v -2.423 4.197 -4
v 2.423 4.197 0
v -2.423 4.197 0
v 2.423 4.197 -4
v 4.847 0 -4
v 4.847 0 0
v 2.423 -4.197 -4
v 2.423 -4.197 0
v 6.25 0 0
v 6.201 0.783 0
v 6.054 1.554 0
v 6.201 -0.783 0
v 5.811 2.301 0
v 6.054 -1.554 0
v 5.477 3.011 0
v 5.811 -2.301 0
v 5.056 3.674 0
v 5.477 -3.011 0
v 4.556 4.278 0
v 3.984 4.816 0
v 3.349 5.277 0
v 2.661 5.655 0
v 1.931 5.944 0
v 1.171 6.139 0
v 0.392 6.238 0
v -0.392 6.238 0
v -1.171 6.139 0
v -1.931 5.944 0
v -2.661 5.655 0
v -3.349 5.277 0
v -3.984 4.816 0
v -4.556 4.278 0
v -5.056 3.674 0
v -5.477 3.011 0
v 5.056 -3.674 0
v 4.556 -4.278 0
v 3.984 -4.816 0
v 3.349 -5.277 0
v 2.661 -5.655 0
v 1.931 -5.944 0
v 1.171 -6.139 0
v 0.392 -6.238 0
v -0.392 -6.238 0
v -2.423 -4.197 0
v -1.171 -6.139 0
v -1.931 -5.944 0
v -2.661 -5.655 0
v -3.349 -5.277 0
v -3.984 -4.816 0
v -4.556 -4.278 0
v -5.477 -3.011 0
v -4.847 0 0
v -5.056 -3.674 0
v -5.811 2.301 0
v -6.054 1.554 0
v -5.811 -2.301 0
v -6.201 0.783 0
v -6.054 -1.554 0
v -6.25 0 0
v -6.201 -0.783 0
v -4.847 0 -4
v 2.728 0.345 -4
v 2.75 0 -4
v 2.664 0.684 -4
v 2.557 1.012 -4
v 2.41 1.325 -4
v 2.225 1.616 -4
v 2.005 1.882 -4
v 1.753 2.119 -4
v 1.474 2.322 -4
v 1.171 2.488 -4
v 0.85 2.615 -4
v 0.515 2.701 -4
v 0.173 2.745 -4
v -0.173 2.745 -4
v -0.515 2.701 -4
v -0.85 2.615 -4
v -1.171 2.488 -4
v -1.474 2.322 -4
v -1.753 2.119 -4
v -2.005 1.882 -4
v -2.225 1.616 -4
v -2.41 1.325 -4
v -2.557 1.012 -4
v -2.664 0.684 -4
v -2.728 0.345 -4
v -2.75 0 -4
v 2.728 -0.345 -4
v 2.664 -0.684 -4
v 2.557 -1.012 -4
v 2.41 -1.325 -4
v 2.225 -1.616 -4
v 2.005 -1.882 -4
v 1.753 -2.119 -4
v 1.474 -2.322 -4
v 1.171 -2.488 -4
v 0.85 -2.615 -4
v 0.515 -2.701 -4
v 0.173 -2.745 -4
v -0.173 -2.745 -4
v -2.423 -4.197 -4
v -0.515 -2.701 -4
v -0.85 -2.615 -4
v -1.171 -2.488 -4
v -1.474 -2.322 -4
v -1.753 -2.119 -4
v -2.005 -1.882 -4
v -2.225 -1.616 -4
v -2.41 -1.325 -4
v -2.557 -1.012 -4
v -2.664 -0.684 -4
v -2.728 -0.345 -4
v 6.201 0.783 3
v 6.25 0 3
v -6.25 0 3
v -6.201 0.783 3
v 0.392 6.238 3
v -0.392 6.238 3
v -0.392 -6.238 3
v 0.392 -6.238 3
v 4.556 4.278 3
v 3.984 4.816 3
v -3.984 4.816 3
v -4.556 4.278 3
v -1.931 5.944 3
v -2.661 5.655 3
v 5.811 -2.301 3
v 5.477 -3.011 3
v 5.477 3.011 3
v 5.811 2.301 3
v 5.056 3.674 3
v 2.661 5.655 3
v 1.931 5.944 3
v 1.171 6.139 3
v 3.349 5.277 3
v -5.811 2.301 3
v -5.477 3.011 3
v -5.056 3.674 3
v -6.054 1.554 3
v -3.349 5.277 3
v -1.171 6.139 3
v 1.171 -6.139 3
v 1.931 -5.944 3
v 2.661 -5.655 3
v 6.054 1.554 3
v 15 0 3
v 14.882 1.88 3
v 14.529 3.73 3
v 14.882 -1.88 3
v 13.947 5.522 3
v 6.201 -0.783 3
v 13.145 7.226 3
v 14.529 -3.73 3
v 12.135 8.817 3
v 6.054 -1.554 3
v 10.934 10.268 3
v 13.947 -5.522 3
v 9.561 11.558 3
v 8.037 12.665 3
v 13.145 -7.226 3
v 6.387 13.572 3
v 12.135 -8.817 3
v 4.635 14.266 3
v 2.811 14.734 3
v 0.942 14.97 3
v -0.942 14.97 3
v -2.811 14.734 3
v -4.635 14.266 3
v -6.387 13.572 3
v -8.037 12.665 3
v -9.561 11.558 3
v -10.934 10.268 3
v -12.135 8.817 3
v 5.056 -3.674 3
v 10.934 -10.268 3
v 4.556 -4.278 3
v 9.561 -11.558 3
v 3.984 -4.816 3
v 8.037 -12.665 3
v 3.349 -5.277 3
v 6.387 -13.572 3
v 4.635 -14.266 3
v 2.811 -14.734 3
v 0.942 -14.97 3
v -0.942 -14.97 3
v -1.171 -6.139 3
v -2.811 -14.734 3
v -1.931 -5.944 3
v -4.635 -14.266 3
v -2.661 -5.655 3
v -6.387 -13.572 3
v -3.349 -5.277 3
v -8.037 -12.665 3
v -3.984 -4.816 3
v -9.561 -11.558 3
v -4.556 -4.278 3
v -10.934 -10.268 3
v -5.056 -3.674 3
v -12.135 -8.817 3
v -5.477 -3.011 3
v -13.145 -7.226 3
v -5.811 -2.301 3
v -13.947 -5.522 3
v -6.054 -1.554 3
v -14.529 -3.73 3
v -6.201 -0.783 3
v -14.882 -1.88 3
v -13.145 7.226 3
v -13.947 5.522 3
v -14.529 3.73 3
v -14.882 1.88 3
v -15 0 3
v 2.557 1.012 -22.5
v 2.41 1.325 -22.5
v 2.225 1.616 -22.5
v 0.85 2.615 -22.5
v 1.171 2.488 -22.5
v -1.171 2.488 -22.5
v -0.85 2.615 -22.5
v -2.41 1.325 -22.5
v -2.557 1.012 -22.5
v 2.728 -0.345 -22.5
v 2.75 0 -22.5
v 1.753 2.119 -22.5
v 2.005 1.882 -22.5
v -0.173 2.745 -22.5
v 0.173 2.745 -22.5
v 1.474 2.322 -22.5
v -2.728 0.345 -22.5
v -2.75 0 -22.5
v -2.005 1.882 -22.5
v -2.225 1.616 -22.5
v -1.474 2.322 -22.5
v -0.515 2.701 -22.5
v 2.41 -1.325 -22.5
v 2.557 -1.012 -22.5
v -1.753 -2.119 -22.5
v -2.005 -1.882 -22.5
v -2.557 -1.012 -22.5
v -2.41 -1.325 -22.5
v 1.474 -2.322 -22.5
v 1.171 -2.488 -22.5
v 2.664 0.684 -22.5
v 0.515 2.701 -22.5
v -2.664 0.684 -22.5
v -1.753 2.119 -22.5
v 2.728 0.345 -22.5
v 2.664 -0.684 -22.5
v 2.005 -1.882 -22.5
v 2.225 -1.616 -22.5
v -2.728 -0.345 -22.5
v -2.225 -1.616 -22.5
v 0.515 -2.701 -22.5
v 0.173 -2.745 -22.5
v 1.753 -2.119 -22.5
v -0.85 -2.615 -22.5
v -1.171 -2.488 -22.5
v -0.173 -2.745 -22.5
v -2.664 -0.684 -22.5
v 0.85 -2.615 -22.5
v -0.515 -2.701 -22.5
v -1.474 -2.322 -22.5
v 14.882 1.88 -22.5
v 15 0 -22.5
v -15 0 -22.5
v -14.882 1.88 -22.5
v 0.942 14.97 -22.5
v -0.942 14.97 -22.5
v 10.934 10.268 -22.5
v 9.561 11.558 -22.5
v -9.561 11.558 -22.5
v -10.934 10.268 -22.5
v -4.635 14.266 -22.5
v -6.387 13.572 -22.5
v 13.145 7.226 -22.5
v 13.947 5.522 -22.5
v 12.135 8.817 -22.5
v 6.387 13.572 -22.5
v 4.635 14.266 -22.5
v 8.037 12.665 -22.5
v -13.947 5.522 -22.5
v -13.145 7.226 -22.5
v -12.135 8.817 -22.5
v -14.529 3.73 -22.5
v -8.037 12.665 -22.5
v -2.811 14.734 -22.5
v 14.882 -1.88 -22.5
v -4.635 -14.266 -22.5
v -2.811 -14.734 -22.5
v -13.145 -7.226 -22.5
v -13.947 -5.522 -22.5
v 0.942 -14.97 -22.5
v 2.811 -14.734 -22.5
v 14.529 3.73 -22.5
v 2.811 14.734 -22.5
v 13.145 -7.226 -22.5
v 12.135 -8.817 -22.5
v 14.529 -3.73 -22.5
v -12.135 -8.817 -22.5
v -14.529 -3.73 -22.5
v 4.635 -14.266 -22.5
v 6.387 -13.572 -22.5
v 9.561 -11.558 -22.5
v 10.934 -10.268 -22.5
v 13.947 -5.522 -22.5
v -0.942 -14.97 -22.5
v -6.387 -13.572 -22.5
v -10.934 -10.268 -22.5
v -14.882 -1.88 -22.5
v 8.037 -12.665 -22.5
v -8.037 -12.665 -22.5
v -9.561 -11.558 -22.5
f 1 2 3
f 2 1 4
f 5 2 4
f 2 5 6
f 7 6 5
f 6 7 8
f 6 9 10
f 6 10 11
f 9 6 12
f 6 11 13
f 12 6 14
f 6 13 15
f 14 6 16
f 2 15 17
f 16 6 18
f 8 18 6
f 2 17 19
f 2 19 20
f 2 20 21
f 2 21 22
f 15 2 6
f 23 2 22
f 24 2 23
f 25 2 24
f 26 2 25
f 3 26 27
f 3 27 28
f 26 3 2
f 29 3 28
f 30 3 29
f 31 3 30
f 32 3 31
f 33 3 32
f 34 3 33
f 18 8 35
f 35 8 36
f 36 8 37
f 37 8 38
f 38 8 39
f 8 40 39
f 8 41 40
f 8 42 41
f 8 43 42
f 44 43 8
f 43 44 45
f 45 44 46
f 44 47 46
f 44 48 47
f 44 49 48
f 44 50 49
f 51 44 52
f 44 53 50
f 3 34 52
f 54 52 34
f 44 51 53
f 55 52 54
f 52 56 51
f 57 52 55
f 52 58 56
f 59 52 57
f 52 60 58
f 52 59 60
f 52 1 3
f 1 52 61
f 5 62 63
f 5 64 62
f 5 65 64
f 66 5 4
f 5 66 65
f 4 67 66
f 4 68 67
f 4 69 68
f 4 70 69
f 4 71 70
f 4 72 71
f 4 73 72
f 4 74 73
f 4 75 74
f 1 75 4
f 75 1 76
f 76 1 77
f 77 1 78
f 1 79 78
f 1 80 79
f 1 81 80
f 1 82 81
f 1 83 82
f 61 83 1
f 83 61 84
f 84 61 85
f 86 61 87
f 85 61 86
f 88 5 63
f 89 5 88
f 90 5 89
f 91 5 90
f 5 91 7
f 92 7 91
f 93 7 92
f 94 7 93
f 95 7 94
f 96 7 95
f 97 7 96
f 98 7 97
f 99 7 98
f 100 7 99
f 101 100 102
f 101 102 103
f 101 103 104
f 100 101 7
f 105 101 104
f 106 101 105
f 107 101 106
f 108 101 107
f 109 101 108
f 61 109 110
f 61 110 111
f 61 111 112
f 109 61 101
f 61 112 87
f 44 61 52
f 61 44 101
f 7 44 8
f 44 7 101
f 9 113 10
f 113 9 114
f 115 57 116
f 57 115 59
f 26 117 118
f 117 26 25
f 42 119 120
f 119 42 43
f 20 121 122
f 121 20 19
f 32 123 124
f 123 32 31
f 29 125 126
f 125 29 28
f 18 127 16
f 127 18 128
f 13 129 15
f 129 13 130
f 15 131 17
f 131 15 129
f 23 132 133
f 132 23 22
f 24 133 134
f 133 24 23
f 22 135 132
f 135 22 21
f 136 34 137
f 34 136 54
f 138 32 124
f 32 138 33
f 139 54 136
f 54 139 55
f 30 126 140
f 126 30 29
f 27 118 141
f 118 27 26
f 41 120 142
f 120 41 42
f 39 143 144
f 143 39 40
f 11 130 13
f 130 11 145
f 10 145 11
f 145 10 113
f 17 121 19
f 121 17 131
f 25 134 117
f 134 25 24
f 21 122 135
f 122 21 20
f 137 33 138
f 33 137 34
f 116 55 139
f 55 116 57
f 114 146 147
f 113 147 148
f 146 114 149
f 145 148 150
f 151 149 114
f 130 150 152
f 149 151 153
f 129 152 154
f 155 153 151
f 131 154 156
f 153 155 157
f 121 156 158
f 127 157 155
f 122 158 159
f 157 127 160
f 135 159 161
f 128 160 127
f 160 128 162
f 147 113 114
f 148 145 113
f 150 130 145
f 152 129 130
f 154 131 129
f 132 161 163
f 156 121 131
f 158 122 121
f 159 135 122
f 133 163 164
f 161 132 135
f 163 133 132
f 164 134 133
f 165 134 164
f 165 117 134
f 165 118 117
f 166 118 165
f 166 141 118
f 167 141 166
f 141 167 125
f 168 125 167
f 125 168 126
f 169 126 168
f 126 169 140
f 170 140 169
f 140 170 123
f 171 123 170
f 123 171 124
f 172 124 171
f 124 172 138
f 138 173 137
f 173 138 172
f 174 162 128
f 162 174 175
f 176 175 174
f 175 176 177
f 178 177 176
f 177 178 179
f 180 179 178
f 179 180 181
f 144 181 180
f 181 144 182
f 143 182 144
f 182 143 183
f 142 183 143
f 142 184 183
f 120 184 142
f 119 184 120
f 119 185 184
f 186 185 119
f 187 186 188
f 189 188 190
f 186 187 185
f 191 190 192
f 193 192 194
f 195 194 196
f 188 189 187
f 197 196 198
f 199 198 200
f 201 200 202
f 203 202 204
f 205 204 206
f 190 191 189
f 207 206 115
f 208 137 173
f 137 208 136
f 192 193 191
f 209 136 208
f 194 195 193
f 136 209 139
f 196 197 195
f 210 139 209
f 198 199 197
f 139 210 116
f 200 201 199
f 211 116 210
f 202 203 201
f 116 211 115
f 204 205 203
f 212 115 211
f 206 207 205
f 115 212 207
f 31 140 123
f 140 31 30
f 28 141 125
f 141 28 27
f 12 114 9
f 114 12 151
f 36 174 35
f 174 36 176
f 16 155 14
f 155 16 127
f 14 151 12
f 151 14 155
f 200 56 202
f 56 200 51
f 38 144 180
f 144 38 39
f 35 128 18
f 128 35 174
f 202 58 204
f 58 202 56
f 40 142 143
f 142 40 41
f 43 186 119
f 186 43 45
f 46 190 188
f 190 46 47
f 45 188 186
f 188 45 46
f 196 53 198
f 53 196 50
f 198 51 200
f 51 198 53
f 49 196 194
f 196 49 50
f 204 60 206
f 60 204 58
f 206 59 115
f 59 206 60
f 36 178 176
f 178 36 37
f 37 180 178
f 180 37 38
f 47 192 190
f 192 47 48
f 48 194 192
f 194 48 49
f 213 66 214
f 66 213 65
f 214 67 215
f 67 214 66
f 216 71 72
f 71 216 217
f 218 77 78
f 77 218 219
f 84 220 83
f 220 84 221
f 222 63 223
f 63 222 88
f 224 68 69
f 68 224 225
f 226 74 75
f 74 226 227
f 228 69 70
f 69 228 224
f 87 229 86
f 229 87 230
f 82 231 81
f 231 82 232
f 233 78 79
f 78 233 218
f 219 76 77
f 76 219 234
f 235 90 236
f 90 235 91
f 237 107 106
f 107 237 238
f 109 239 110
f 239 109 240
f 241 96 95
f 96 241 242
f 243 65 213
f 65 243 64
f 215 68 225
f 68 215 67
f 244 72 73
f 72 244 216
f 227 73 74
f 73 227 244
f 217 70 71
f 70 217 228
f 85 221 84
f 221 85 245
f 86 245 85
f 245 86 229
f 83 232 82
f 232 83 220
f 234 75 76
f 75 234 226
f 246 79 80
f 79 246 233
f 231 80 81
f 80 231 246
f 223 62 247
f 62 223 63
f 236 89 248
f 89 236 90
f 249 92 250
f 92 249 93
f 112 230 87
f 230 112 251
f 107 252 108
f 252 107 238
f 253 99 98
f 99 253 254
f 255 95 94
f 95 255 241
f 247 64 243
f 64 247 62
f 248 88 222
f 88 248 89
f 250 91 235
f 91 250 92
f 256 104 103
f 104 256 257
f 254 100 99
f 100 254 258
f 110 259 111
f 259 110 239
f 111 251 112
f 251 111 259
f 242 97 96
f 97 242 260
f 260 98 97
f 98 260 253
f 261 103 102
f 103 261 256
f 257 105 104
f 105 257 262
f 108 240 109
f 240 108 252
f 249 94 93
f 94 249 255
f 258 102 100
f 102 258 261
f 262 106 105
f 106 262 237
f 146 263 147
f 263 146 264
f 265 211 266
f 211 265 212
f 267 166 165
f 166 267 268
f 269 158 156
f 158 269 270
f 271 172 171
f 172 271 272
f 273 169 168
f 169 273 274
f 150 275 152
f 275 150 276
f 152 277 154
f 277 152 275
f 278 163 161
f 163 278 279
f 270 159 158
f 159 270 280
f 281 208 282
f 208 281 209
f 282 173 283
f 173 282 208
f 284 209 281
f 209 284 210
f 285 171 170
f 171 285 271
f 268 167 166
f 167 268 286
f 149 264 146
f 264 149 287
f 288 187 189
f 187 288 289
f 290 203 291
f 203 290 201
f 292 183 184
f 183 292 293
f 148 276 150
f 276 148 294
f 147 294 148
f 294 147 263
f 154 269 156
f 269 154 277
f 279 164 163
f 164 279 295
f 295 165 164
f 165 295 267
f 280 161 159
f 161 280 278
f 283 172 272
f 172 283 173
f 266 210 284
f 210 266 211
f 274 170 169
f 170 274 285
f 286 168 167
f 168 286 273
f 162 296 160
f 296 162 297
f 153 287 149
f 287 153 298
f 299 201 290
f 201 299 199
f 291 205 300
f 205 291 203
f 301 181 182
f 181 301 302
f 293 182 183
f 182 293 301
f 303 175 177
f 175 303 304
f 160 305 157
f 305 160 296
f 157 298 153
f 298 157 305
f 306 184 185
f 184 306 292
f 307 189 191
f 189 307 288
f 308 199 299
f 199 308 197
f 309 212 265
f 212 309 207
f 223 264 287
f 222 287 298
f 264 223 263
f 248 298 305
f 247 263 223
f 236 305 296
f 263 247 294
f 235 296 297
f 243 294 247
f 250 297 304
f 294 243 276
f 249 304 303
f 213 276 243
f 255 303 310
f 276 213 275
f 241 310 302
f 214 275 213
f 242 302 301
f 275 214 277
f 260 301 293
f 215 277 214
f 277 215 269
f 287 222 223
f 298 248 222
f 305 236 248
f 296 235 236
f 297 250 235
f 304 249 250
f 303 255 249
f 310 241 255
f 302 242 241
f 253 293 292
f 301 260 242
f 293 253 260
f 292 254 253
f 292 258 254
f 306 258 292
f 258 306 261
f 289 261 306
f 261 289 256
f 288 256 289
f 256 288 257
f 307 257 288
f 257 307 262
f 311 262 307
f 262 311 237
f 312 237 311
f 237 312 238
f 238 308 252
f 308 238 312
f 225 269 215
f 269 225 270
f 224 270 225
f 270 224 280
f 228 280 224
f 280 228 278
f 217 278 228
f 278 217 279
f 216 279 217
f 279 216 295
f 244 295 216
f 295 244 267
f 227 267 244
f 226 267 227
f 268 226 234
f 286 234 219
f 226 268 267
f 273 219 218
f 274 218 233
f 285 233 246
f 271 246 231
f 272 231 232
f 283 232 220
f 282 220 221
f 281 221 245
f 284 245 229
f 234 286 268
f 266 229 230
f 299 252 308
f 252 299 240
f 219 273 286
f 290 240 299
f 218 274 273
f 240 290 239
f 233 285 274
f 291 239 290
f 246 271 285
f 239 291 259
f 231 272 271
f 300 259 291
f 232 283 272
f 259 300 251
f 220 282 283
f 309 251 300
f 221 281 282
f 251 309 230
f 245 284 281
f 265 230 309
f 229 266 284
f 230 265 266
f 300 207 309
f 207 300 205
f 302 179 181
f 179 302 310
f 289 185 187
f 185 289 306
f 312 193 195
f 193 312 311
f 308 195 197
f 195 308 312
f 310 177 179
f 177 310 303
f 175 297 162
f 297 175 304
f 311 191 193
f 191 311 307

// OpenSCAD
$fn = 50;

difference() {
	union() {
		translate(v = [0, 0, -22.5]) {
			cylinder(h = 25.5, r = 15.0);
		}
	}
	union() {
		translate(v = [0, 0, 0]) {
			rotate(a = [0, 0, 0]) {
				difference() {
					union() {
						translate(v = [0, 0, -4]) {
							linear_extrude(height = 4) {
								polygon(points = [[4.8468, 0.0], [2.4234000000000004, 4.197451927062417], [-2.423399999999999, 4.197451927062417], [-4.8468, 5.935618106107392e-16], [-2.423400000000002, -4.197451927062416], [2.423399999999997, -4.197451927062419]]);
							}
						}
					}
					union();
				}
			}
		}
		#cylinder(h = 3, r = 6.25);
		#translate(v = [0, 0, -100.0]) {
			cylinder(h = 200, r = 2.75);
		}
	}
}
